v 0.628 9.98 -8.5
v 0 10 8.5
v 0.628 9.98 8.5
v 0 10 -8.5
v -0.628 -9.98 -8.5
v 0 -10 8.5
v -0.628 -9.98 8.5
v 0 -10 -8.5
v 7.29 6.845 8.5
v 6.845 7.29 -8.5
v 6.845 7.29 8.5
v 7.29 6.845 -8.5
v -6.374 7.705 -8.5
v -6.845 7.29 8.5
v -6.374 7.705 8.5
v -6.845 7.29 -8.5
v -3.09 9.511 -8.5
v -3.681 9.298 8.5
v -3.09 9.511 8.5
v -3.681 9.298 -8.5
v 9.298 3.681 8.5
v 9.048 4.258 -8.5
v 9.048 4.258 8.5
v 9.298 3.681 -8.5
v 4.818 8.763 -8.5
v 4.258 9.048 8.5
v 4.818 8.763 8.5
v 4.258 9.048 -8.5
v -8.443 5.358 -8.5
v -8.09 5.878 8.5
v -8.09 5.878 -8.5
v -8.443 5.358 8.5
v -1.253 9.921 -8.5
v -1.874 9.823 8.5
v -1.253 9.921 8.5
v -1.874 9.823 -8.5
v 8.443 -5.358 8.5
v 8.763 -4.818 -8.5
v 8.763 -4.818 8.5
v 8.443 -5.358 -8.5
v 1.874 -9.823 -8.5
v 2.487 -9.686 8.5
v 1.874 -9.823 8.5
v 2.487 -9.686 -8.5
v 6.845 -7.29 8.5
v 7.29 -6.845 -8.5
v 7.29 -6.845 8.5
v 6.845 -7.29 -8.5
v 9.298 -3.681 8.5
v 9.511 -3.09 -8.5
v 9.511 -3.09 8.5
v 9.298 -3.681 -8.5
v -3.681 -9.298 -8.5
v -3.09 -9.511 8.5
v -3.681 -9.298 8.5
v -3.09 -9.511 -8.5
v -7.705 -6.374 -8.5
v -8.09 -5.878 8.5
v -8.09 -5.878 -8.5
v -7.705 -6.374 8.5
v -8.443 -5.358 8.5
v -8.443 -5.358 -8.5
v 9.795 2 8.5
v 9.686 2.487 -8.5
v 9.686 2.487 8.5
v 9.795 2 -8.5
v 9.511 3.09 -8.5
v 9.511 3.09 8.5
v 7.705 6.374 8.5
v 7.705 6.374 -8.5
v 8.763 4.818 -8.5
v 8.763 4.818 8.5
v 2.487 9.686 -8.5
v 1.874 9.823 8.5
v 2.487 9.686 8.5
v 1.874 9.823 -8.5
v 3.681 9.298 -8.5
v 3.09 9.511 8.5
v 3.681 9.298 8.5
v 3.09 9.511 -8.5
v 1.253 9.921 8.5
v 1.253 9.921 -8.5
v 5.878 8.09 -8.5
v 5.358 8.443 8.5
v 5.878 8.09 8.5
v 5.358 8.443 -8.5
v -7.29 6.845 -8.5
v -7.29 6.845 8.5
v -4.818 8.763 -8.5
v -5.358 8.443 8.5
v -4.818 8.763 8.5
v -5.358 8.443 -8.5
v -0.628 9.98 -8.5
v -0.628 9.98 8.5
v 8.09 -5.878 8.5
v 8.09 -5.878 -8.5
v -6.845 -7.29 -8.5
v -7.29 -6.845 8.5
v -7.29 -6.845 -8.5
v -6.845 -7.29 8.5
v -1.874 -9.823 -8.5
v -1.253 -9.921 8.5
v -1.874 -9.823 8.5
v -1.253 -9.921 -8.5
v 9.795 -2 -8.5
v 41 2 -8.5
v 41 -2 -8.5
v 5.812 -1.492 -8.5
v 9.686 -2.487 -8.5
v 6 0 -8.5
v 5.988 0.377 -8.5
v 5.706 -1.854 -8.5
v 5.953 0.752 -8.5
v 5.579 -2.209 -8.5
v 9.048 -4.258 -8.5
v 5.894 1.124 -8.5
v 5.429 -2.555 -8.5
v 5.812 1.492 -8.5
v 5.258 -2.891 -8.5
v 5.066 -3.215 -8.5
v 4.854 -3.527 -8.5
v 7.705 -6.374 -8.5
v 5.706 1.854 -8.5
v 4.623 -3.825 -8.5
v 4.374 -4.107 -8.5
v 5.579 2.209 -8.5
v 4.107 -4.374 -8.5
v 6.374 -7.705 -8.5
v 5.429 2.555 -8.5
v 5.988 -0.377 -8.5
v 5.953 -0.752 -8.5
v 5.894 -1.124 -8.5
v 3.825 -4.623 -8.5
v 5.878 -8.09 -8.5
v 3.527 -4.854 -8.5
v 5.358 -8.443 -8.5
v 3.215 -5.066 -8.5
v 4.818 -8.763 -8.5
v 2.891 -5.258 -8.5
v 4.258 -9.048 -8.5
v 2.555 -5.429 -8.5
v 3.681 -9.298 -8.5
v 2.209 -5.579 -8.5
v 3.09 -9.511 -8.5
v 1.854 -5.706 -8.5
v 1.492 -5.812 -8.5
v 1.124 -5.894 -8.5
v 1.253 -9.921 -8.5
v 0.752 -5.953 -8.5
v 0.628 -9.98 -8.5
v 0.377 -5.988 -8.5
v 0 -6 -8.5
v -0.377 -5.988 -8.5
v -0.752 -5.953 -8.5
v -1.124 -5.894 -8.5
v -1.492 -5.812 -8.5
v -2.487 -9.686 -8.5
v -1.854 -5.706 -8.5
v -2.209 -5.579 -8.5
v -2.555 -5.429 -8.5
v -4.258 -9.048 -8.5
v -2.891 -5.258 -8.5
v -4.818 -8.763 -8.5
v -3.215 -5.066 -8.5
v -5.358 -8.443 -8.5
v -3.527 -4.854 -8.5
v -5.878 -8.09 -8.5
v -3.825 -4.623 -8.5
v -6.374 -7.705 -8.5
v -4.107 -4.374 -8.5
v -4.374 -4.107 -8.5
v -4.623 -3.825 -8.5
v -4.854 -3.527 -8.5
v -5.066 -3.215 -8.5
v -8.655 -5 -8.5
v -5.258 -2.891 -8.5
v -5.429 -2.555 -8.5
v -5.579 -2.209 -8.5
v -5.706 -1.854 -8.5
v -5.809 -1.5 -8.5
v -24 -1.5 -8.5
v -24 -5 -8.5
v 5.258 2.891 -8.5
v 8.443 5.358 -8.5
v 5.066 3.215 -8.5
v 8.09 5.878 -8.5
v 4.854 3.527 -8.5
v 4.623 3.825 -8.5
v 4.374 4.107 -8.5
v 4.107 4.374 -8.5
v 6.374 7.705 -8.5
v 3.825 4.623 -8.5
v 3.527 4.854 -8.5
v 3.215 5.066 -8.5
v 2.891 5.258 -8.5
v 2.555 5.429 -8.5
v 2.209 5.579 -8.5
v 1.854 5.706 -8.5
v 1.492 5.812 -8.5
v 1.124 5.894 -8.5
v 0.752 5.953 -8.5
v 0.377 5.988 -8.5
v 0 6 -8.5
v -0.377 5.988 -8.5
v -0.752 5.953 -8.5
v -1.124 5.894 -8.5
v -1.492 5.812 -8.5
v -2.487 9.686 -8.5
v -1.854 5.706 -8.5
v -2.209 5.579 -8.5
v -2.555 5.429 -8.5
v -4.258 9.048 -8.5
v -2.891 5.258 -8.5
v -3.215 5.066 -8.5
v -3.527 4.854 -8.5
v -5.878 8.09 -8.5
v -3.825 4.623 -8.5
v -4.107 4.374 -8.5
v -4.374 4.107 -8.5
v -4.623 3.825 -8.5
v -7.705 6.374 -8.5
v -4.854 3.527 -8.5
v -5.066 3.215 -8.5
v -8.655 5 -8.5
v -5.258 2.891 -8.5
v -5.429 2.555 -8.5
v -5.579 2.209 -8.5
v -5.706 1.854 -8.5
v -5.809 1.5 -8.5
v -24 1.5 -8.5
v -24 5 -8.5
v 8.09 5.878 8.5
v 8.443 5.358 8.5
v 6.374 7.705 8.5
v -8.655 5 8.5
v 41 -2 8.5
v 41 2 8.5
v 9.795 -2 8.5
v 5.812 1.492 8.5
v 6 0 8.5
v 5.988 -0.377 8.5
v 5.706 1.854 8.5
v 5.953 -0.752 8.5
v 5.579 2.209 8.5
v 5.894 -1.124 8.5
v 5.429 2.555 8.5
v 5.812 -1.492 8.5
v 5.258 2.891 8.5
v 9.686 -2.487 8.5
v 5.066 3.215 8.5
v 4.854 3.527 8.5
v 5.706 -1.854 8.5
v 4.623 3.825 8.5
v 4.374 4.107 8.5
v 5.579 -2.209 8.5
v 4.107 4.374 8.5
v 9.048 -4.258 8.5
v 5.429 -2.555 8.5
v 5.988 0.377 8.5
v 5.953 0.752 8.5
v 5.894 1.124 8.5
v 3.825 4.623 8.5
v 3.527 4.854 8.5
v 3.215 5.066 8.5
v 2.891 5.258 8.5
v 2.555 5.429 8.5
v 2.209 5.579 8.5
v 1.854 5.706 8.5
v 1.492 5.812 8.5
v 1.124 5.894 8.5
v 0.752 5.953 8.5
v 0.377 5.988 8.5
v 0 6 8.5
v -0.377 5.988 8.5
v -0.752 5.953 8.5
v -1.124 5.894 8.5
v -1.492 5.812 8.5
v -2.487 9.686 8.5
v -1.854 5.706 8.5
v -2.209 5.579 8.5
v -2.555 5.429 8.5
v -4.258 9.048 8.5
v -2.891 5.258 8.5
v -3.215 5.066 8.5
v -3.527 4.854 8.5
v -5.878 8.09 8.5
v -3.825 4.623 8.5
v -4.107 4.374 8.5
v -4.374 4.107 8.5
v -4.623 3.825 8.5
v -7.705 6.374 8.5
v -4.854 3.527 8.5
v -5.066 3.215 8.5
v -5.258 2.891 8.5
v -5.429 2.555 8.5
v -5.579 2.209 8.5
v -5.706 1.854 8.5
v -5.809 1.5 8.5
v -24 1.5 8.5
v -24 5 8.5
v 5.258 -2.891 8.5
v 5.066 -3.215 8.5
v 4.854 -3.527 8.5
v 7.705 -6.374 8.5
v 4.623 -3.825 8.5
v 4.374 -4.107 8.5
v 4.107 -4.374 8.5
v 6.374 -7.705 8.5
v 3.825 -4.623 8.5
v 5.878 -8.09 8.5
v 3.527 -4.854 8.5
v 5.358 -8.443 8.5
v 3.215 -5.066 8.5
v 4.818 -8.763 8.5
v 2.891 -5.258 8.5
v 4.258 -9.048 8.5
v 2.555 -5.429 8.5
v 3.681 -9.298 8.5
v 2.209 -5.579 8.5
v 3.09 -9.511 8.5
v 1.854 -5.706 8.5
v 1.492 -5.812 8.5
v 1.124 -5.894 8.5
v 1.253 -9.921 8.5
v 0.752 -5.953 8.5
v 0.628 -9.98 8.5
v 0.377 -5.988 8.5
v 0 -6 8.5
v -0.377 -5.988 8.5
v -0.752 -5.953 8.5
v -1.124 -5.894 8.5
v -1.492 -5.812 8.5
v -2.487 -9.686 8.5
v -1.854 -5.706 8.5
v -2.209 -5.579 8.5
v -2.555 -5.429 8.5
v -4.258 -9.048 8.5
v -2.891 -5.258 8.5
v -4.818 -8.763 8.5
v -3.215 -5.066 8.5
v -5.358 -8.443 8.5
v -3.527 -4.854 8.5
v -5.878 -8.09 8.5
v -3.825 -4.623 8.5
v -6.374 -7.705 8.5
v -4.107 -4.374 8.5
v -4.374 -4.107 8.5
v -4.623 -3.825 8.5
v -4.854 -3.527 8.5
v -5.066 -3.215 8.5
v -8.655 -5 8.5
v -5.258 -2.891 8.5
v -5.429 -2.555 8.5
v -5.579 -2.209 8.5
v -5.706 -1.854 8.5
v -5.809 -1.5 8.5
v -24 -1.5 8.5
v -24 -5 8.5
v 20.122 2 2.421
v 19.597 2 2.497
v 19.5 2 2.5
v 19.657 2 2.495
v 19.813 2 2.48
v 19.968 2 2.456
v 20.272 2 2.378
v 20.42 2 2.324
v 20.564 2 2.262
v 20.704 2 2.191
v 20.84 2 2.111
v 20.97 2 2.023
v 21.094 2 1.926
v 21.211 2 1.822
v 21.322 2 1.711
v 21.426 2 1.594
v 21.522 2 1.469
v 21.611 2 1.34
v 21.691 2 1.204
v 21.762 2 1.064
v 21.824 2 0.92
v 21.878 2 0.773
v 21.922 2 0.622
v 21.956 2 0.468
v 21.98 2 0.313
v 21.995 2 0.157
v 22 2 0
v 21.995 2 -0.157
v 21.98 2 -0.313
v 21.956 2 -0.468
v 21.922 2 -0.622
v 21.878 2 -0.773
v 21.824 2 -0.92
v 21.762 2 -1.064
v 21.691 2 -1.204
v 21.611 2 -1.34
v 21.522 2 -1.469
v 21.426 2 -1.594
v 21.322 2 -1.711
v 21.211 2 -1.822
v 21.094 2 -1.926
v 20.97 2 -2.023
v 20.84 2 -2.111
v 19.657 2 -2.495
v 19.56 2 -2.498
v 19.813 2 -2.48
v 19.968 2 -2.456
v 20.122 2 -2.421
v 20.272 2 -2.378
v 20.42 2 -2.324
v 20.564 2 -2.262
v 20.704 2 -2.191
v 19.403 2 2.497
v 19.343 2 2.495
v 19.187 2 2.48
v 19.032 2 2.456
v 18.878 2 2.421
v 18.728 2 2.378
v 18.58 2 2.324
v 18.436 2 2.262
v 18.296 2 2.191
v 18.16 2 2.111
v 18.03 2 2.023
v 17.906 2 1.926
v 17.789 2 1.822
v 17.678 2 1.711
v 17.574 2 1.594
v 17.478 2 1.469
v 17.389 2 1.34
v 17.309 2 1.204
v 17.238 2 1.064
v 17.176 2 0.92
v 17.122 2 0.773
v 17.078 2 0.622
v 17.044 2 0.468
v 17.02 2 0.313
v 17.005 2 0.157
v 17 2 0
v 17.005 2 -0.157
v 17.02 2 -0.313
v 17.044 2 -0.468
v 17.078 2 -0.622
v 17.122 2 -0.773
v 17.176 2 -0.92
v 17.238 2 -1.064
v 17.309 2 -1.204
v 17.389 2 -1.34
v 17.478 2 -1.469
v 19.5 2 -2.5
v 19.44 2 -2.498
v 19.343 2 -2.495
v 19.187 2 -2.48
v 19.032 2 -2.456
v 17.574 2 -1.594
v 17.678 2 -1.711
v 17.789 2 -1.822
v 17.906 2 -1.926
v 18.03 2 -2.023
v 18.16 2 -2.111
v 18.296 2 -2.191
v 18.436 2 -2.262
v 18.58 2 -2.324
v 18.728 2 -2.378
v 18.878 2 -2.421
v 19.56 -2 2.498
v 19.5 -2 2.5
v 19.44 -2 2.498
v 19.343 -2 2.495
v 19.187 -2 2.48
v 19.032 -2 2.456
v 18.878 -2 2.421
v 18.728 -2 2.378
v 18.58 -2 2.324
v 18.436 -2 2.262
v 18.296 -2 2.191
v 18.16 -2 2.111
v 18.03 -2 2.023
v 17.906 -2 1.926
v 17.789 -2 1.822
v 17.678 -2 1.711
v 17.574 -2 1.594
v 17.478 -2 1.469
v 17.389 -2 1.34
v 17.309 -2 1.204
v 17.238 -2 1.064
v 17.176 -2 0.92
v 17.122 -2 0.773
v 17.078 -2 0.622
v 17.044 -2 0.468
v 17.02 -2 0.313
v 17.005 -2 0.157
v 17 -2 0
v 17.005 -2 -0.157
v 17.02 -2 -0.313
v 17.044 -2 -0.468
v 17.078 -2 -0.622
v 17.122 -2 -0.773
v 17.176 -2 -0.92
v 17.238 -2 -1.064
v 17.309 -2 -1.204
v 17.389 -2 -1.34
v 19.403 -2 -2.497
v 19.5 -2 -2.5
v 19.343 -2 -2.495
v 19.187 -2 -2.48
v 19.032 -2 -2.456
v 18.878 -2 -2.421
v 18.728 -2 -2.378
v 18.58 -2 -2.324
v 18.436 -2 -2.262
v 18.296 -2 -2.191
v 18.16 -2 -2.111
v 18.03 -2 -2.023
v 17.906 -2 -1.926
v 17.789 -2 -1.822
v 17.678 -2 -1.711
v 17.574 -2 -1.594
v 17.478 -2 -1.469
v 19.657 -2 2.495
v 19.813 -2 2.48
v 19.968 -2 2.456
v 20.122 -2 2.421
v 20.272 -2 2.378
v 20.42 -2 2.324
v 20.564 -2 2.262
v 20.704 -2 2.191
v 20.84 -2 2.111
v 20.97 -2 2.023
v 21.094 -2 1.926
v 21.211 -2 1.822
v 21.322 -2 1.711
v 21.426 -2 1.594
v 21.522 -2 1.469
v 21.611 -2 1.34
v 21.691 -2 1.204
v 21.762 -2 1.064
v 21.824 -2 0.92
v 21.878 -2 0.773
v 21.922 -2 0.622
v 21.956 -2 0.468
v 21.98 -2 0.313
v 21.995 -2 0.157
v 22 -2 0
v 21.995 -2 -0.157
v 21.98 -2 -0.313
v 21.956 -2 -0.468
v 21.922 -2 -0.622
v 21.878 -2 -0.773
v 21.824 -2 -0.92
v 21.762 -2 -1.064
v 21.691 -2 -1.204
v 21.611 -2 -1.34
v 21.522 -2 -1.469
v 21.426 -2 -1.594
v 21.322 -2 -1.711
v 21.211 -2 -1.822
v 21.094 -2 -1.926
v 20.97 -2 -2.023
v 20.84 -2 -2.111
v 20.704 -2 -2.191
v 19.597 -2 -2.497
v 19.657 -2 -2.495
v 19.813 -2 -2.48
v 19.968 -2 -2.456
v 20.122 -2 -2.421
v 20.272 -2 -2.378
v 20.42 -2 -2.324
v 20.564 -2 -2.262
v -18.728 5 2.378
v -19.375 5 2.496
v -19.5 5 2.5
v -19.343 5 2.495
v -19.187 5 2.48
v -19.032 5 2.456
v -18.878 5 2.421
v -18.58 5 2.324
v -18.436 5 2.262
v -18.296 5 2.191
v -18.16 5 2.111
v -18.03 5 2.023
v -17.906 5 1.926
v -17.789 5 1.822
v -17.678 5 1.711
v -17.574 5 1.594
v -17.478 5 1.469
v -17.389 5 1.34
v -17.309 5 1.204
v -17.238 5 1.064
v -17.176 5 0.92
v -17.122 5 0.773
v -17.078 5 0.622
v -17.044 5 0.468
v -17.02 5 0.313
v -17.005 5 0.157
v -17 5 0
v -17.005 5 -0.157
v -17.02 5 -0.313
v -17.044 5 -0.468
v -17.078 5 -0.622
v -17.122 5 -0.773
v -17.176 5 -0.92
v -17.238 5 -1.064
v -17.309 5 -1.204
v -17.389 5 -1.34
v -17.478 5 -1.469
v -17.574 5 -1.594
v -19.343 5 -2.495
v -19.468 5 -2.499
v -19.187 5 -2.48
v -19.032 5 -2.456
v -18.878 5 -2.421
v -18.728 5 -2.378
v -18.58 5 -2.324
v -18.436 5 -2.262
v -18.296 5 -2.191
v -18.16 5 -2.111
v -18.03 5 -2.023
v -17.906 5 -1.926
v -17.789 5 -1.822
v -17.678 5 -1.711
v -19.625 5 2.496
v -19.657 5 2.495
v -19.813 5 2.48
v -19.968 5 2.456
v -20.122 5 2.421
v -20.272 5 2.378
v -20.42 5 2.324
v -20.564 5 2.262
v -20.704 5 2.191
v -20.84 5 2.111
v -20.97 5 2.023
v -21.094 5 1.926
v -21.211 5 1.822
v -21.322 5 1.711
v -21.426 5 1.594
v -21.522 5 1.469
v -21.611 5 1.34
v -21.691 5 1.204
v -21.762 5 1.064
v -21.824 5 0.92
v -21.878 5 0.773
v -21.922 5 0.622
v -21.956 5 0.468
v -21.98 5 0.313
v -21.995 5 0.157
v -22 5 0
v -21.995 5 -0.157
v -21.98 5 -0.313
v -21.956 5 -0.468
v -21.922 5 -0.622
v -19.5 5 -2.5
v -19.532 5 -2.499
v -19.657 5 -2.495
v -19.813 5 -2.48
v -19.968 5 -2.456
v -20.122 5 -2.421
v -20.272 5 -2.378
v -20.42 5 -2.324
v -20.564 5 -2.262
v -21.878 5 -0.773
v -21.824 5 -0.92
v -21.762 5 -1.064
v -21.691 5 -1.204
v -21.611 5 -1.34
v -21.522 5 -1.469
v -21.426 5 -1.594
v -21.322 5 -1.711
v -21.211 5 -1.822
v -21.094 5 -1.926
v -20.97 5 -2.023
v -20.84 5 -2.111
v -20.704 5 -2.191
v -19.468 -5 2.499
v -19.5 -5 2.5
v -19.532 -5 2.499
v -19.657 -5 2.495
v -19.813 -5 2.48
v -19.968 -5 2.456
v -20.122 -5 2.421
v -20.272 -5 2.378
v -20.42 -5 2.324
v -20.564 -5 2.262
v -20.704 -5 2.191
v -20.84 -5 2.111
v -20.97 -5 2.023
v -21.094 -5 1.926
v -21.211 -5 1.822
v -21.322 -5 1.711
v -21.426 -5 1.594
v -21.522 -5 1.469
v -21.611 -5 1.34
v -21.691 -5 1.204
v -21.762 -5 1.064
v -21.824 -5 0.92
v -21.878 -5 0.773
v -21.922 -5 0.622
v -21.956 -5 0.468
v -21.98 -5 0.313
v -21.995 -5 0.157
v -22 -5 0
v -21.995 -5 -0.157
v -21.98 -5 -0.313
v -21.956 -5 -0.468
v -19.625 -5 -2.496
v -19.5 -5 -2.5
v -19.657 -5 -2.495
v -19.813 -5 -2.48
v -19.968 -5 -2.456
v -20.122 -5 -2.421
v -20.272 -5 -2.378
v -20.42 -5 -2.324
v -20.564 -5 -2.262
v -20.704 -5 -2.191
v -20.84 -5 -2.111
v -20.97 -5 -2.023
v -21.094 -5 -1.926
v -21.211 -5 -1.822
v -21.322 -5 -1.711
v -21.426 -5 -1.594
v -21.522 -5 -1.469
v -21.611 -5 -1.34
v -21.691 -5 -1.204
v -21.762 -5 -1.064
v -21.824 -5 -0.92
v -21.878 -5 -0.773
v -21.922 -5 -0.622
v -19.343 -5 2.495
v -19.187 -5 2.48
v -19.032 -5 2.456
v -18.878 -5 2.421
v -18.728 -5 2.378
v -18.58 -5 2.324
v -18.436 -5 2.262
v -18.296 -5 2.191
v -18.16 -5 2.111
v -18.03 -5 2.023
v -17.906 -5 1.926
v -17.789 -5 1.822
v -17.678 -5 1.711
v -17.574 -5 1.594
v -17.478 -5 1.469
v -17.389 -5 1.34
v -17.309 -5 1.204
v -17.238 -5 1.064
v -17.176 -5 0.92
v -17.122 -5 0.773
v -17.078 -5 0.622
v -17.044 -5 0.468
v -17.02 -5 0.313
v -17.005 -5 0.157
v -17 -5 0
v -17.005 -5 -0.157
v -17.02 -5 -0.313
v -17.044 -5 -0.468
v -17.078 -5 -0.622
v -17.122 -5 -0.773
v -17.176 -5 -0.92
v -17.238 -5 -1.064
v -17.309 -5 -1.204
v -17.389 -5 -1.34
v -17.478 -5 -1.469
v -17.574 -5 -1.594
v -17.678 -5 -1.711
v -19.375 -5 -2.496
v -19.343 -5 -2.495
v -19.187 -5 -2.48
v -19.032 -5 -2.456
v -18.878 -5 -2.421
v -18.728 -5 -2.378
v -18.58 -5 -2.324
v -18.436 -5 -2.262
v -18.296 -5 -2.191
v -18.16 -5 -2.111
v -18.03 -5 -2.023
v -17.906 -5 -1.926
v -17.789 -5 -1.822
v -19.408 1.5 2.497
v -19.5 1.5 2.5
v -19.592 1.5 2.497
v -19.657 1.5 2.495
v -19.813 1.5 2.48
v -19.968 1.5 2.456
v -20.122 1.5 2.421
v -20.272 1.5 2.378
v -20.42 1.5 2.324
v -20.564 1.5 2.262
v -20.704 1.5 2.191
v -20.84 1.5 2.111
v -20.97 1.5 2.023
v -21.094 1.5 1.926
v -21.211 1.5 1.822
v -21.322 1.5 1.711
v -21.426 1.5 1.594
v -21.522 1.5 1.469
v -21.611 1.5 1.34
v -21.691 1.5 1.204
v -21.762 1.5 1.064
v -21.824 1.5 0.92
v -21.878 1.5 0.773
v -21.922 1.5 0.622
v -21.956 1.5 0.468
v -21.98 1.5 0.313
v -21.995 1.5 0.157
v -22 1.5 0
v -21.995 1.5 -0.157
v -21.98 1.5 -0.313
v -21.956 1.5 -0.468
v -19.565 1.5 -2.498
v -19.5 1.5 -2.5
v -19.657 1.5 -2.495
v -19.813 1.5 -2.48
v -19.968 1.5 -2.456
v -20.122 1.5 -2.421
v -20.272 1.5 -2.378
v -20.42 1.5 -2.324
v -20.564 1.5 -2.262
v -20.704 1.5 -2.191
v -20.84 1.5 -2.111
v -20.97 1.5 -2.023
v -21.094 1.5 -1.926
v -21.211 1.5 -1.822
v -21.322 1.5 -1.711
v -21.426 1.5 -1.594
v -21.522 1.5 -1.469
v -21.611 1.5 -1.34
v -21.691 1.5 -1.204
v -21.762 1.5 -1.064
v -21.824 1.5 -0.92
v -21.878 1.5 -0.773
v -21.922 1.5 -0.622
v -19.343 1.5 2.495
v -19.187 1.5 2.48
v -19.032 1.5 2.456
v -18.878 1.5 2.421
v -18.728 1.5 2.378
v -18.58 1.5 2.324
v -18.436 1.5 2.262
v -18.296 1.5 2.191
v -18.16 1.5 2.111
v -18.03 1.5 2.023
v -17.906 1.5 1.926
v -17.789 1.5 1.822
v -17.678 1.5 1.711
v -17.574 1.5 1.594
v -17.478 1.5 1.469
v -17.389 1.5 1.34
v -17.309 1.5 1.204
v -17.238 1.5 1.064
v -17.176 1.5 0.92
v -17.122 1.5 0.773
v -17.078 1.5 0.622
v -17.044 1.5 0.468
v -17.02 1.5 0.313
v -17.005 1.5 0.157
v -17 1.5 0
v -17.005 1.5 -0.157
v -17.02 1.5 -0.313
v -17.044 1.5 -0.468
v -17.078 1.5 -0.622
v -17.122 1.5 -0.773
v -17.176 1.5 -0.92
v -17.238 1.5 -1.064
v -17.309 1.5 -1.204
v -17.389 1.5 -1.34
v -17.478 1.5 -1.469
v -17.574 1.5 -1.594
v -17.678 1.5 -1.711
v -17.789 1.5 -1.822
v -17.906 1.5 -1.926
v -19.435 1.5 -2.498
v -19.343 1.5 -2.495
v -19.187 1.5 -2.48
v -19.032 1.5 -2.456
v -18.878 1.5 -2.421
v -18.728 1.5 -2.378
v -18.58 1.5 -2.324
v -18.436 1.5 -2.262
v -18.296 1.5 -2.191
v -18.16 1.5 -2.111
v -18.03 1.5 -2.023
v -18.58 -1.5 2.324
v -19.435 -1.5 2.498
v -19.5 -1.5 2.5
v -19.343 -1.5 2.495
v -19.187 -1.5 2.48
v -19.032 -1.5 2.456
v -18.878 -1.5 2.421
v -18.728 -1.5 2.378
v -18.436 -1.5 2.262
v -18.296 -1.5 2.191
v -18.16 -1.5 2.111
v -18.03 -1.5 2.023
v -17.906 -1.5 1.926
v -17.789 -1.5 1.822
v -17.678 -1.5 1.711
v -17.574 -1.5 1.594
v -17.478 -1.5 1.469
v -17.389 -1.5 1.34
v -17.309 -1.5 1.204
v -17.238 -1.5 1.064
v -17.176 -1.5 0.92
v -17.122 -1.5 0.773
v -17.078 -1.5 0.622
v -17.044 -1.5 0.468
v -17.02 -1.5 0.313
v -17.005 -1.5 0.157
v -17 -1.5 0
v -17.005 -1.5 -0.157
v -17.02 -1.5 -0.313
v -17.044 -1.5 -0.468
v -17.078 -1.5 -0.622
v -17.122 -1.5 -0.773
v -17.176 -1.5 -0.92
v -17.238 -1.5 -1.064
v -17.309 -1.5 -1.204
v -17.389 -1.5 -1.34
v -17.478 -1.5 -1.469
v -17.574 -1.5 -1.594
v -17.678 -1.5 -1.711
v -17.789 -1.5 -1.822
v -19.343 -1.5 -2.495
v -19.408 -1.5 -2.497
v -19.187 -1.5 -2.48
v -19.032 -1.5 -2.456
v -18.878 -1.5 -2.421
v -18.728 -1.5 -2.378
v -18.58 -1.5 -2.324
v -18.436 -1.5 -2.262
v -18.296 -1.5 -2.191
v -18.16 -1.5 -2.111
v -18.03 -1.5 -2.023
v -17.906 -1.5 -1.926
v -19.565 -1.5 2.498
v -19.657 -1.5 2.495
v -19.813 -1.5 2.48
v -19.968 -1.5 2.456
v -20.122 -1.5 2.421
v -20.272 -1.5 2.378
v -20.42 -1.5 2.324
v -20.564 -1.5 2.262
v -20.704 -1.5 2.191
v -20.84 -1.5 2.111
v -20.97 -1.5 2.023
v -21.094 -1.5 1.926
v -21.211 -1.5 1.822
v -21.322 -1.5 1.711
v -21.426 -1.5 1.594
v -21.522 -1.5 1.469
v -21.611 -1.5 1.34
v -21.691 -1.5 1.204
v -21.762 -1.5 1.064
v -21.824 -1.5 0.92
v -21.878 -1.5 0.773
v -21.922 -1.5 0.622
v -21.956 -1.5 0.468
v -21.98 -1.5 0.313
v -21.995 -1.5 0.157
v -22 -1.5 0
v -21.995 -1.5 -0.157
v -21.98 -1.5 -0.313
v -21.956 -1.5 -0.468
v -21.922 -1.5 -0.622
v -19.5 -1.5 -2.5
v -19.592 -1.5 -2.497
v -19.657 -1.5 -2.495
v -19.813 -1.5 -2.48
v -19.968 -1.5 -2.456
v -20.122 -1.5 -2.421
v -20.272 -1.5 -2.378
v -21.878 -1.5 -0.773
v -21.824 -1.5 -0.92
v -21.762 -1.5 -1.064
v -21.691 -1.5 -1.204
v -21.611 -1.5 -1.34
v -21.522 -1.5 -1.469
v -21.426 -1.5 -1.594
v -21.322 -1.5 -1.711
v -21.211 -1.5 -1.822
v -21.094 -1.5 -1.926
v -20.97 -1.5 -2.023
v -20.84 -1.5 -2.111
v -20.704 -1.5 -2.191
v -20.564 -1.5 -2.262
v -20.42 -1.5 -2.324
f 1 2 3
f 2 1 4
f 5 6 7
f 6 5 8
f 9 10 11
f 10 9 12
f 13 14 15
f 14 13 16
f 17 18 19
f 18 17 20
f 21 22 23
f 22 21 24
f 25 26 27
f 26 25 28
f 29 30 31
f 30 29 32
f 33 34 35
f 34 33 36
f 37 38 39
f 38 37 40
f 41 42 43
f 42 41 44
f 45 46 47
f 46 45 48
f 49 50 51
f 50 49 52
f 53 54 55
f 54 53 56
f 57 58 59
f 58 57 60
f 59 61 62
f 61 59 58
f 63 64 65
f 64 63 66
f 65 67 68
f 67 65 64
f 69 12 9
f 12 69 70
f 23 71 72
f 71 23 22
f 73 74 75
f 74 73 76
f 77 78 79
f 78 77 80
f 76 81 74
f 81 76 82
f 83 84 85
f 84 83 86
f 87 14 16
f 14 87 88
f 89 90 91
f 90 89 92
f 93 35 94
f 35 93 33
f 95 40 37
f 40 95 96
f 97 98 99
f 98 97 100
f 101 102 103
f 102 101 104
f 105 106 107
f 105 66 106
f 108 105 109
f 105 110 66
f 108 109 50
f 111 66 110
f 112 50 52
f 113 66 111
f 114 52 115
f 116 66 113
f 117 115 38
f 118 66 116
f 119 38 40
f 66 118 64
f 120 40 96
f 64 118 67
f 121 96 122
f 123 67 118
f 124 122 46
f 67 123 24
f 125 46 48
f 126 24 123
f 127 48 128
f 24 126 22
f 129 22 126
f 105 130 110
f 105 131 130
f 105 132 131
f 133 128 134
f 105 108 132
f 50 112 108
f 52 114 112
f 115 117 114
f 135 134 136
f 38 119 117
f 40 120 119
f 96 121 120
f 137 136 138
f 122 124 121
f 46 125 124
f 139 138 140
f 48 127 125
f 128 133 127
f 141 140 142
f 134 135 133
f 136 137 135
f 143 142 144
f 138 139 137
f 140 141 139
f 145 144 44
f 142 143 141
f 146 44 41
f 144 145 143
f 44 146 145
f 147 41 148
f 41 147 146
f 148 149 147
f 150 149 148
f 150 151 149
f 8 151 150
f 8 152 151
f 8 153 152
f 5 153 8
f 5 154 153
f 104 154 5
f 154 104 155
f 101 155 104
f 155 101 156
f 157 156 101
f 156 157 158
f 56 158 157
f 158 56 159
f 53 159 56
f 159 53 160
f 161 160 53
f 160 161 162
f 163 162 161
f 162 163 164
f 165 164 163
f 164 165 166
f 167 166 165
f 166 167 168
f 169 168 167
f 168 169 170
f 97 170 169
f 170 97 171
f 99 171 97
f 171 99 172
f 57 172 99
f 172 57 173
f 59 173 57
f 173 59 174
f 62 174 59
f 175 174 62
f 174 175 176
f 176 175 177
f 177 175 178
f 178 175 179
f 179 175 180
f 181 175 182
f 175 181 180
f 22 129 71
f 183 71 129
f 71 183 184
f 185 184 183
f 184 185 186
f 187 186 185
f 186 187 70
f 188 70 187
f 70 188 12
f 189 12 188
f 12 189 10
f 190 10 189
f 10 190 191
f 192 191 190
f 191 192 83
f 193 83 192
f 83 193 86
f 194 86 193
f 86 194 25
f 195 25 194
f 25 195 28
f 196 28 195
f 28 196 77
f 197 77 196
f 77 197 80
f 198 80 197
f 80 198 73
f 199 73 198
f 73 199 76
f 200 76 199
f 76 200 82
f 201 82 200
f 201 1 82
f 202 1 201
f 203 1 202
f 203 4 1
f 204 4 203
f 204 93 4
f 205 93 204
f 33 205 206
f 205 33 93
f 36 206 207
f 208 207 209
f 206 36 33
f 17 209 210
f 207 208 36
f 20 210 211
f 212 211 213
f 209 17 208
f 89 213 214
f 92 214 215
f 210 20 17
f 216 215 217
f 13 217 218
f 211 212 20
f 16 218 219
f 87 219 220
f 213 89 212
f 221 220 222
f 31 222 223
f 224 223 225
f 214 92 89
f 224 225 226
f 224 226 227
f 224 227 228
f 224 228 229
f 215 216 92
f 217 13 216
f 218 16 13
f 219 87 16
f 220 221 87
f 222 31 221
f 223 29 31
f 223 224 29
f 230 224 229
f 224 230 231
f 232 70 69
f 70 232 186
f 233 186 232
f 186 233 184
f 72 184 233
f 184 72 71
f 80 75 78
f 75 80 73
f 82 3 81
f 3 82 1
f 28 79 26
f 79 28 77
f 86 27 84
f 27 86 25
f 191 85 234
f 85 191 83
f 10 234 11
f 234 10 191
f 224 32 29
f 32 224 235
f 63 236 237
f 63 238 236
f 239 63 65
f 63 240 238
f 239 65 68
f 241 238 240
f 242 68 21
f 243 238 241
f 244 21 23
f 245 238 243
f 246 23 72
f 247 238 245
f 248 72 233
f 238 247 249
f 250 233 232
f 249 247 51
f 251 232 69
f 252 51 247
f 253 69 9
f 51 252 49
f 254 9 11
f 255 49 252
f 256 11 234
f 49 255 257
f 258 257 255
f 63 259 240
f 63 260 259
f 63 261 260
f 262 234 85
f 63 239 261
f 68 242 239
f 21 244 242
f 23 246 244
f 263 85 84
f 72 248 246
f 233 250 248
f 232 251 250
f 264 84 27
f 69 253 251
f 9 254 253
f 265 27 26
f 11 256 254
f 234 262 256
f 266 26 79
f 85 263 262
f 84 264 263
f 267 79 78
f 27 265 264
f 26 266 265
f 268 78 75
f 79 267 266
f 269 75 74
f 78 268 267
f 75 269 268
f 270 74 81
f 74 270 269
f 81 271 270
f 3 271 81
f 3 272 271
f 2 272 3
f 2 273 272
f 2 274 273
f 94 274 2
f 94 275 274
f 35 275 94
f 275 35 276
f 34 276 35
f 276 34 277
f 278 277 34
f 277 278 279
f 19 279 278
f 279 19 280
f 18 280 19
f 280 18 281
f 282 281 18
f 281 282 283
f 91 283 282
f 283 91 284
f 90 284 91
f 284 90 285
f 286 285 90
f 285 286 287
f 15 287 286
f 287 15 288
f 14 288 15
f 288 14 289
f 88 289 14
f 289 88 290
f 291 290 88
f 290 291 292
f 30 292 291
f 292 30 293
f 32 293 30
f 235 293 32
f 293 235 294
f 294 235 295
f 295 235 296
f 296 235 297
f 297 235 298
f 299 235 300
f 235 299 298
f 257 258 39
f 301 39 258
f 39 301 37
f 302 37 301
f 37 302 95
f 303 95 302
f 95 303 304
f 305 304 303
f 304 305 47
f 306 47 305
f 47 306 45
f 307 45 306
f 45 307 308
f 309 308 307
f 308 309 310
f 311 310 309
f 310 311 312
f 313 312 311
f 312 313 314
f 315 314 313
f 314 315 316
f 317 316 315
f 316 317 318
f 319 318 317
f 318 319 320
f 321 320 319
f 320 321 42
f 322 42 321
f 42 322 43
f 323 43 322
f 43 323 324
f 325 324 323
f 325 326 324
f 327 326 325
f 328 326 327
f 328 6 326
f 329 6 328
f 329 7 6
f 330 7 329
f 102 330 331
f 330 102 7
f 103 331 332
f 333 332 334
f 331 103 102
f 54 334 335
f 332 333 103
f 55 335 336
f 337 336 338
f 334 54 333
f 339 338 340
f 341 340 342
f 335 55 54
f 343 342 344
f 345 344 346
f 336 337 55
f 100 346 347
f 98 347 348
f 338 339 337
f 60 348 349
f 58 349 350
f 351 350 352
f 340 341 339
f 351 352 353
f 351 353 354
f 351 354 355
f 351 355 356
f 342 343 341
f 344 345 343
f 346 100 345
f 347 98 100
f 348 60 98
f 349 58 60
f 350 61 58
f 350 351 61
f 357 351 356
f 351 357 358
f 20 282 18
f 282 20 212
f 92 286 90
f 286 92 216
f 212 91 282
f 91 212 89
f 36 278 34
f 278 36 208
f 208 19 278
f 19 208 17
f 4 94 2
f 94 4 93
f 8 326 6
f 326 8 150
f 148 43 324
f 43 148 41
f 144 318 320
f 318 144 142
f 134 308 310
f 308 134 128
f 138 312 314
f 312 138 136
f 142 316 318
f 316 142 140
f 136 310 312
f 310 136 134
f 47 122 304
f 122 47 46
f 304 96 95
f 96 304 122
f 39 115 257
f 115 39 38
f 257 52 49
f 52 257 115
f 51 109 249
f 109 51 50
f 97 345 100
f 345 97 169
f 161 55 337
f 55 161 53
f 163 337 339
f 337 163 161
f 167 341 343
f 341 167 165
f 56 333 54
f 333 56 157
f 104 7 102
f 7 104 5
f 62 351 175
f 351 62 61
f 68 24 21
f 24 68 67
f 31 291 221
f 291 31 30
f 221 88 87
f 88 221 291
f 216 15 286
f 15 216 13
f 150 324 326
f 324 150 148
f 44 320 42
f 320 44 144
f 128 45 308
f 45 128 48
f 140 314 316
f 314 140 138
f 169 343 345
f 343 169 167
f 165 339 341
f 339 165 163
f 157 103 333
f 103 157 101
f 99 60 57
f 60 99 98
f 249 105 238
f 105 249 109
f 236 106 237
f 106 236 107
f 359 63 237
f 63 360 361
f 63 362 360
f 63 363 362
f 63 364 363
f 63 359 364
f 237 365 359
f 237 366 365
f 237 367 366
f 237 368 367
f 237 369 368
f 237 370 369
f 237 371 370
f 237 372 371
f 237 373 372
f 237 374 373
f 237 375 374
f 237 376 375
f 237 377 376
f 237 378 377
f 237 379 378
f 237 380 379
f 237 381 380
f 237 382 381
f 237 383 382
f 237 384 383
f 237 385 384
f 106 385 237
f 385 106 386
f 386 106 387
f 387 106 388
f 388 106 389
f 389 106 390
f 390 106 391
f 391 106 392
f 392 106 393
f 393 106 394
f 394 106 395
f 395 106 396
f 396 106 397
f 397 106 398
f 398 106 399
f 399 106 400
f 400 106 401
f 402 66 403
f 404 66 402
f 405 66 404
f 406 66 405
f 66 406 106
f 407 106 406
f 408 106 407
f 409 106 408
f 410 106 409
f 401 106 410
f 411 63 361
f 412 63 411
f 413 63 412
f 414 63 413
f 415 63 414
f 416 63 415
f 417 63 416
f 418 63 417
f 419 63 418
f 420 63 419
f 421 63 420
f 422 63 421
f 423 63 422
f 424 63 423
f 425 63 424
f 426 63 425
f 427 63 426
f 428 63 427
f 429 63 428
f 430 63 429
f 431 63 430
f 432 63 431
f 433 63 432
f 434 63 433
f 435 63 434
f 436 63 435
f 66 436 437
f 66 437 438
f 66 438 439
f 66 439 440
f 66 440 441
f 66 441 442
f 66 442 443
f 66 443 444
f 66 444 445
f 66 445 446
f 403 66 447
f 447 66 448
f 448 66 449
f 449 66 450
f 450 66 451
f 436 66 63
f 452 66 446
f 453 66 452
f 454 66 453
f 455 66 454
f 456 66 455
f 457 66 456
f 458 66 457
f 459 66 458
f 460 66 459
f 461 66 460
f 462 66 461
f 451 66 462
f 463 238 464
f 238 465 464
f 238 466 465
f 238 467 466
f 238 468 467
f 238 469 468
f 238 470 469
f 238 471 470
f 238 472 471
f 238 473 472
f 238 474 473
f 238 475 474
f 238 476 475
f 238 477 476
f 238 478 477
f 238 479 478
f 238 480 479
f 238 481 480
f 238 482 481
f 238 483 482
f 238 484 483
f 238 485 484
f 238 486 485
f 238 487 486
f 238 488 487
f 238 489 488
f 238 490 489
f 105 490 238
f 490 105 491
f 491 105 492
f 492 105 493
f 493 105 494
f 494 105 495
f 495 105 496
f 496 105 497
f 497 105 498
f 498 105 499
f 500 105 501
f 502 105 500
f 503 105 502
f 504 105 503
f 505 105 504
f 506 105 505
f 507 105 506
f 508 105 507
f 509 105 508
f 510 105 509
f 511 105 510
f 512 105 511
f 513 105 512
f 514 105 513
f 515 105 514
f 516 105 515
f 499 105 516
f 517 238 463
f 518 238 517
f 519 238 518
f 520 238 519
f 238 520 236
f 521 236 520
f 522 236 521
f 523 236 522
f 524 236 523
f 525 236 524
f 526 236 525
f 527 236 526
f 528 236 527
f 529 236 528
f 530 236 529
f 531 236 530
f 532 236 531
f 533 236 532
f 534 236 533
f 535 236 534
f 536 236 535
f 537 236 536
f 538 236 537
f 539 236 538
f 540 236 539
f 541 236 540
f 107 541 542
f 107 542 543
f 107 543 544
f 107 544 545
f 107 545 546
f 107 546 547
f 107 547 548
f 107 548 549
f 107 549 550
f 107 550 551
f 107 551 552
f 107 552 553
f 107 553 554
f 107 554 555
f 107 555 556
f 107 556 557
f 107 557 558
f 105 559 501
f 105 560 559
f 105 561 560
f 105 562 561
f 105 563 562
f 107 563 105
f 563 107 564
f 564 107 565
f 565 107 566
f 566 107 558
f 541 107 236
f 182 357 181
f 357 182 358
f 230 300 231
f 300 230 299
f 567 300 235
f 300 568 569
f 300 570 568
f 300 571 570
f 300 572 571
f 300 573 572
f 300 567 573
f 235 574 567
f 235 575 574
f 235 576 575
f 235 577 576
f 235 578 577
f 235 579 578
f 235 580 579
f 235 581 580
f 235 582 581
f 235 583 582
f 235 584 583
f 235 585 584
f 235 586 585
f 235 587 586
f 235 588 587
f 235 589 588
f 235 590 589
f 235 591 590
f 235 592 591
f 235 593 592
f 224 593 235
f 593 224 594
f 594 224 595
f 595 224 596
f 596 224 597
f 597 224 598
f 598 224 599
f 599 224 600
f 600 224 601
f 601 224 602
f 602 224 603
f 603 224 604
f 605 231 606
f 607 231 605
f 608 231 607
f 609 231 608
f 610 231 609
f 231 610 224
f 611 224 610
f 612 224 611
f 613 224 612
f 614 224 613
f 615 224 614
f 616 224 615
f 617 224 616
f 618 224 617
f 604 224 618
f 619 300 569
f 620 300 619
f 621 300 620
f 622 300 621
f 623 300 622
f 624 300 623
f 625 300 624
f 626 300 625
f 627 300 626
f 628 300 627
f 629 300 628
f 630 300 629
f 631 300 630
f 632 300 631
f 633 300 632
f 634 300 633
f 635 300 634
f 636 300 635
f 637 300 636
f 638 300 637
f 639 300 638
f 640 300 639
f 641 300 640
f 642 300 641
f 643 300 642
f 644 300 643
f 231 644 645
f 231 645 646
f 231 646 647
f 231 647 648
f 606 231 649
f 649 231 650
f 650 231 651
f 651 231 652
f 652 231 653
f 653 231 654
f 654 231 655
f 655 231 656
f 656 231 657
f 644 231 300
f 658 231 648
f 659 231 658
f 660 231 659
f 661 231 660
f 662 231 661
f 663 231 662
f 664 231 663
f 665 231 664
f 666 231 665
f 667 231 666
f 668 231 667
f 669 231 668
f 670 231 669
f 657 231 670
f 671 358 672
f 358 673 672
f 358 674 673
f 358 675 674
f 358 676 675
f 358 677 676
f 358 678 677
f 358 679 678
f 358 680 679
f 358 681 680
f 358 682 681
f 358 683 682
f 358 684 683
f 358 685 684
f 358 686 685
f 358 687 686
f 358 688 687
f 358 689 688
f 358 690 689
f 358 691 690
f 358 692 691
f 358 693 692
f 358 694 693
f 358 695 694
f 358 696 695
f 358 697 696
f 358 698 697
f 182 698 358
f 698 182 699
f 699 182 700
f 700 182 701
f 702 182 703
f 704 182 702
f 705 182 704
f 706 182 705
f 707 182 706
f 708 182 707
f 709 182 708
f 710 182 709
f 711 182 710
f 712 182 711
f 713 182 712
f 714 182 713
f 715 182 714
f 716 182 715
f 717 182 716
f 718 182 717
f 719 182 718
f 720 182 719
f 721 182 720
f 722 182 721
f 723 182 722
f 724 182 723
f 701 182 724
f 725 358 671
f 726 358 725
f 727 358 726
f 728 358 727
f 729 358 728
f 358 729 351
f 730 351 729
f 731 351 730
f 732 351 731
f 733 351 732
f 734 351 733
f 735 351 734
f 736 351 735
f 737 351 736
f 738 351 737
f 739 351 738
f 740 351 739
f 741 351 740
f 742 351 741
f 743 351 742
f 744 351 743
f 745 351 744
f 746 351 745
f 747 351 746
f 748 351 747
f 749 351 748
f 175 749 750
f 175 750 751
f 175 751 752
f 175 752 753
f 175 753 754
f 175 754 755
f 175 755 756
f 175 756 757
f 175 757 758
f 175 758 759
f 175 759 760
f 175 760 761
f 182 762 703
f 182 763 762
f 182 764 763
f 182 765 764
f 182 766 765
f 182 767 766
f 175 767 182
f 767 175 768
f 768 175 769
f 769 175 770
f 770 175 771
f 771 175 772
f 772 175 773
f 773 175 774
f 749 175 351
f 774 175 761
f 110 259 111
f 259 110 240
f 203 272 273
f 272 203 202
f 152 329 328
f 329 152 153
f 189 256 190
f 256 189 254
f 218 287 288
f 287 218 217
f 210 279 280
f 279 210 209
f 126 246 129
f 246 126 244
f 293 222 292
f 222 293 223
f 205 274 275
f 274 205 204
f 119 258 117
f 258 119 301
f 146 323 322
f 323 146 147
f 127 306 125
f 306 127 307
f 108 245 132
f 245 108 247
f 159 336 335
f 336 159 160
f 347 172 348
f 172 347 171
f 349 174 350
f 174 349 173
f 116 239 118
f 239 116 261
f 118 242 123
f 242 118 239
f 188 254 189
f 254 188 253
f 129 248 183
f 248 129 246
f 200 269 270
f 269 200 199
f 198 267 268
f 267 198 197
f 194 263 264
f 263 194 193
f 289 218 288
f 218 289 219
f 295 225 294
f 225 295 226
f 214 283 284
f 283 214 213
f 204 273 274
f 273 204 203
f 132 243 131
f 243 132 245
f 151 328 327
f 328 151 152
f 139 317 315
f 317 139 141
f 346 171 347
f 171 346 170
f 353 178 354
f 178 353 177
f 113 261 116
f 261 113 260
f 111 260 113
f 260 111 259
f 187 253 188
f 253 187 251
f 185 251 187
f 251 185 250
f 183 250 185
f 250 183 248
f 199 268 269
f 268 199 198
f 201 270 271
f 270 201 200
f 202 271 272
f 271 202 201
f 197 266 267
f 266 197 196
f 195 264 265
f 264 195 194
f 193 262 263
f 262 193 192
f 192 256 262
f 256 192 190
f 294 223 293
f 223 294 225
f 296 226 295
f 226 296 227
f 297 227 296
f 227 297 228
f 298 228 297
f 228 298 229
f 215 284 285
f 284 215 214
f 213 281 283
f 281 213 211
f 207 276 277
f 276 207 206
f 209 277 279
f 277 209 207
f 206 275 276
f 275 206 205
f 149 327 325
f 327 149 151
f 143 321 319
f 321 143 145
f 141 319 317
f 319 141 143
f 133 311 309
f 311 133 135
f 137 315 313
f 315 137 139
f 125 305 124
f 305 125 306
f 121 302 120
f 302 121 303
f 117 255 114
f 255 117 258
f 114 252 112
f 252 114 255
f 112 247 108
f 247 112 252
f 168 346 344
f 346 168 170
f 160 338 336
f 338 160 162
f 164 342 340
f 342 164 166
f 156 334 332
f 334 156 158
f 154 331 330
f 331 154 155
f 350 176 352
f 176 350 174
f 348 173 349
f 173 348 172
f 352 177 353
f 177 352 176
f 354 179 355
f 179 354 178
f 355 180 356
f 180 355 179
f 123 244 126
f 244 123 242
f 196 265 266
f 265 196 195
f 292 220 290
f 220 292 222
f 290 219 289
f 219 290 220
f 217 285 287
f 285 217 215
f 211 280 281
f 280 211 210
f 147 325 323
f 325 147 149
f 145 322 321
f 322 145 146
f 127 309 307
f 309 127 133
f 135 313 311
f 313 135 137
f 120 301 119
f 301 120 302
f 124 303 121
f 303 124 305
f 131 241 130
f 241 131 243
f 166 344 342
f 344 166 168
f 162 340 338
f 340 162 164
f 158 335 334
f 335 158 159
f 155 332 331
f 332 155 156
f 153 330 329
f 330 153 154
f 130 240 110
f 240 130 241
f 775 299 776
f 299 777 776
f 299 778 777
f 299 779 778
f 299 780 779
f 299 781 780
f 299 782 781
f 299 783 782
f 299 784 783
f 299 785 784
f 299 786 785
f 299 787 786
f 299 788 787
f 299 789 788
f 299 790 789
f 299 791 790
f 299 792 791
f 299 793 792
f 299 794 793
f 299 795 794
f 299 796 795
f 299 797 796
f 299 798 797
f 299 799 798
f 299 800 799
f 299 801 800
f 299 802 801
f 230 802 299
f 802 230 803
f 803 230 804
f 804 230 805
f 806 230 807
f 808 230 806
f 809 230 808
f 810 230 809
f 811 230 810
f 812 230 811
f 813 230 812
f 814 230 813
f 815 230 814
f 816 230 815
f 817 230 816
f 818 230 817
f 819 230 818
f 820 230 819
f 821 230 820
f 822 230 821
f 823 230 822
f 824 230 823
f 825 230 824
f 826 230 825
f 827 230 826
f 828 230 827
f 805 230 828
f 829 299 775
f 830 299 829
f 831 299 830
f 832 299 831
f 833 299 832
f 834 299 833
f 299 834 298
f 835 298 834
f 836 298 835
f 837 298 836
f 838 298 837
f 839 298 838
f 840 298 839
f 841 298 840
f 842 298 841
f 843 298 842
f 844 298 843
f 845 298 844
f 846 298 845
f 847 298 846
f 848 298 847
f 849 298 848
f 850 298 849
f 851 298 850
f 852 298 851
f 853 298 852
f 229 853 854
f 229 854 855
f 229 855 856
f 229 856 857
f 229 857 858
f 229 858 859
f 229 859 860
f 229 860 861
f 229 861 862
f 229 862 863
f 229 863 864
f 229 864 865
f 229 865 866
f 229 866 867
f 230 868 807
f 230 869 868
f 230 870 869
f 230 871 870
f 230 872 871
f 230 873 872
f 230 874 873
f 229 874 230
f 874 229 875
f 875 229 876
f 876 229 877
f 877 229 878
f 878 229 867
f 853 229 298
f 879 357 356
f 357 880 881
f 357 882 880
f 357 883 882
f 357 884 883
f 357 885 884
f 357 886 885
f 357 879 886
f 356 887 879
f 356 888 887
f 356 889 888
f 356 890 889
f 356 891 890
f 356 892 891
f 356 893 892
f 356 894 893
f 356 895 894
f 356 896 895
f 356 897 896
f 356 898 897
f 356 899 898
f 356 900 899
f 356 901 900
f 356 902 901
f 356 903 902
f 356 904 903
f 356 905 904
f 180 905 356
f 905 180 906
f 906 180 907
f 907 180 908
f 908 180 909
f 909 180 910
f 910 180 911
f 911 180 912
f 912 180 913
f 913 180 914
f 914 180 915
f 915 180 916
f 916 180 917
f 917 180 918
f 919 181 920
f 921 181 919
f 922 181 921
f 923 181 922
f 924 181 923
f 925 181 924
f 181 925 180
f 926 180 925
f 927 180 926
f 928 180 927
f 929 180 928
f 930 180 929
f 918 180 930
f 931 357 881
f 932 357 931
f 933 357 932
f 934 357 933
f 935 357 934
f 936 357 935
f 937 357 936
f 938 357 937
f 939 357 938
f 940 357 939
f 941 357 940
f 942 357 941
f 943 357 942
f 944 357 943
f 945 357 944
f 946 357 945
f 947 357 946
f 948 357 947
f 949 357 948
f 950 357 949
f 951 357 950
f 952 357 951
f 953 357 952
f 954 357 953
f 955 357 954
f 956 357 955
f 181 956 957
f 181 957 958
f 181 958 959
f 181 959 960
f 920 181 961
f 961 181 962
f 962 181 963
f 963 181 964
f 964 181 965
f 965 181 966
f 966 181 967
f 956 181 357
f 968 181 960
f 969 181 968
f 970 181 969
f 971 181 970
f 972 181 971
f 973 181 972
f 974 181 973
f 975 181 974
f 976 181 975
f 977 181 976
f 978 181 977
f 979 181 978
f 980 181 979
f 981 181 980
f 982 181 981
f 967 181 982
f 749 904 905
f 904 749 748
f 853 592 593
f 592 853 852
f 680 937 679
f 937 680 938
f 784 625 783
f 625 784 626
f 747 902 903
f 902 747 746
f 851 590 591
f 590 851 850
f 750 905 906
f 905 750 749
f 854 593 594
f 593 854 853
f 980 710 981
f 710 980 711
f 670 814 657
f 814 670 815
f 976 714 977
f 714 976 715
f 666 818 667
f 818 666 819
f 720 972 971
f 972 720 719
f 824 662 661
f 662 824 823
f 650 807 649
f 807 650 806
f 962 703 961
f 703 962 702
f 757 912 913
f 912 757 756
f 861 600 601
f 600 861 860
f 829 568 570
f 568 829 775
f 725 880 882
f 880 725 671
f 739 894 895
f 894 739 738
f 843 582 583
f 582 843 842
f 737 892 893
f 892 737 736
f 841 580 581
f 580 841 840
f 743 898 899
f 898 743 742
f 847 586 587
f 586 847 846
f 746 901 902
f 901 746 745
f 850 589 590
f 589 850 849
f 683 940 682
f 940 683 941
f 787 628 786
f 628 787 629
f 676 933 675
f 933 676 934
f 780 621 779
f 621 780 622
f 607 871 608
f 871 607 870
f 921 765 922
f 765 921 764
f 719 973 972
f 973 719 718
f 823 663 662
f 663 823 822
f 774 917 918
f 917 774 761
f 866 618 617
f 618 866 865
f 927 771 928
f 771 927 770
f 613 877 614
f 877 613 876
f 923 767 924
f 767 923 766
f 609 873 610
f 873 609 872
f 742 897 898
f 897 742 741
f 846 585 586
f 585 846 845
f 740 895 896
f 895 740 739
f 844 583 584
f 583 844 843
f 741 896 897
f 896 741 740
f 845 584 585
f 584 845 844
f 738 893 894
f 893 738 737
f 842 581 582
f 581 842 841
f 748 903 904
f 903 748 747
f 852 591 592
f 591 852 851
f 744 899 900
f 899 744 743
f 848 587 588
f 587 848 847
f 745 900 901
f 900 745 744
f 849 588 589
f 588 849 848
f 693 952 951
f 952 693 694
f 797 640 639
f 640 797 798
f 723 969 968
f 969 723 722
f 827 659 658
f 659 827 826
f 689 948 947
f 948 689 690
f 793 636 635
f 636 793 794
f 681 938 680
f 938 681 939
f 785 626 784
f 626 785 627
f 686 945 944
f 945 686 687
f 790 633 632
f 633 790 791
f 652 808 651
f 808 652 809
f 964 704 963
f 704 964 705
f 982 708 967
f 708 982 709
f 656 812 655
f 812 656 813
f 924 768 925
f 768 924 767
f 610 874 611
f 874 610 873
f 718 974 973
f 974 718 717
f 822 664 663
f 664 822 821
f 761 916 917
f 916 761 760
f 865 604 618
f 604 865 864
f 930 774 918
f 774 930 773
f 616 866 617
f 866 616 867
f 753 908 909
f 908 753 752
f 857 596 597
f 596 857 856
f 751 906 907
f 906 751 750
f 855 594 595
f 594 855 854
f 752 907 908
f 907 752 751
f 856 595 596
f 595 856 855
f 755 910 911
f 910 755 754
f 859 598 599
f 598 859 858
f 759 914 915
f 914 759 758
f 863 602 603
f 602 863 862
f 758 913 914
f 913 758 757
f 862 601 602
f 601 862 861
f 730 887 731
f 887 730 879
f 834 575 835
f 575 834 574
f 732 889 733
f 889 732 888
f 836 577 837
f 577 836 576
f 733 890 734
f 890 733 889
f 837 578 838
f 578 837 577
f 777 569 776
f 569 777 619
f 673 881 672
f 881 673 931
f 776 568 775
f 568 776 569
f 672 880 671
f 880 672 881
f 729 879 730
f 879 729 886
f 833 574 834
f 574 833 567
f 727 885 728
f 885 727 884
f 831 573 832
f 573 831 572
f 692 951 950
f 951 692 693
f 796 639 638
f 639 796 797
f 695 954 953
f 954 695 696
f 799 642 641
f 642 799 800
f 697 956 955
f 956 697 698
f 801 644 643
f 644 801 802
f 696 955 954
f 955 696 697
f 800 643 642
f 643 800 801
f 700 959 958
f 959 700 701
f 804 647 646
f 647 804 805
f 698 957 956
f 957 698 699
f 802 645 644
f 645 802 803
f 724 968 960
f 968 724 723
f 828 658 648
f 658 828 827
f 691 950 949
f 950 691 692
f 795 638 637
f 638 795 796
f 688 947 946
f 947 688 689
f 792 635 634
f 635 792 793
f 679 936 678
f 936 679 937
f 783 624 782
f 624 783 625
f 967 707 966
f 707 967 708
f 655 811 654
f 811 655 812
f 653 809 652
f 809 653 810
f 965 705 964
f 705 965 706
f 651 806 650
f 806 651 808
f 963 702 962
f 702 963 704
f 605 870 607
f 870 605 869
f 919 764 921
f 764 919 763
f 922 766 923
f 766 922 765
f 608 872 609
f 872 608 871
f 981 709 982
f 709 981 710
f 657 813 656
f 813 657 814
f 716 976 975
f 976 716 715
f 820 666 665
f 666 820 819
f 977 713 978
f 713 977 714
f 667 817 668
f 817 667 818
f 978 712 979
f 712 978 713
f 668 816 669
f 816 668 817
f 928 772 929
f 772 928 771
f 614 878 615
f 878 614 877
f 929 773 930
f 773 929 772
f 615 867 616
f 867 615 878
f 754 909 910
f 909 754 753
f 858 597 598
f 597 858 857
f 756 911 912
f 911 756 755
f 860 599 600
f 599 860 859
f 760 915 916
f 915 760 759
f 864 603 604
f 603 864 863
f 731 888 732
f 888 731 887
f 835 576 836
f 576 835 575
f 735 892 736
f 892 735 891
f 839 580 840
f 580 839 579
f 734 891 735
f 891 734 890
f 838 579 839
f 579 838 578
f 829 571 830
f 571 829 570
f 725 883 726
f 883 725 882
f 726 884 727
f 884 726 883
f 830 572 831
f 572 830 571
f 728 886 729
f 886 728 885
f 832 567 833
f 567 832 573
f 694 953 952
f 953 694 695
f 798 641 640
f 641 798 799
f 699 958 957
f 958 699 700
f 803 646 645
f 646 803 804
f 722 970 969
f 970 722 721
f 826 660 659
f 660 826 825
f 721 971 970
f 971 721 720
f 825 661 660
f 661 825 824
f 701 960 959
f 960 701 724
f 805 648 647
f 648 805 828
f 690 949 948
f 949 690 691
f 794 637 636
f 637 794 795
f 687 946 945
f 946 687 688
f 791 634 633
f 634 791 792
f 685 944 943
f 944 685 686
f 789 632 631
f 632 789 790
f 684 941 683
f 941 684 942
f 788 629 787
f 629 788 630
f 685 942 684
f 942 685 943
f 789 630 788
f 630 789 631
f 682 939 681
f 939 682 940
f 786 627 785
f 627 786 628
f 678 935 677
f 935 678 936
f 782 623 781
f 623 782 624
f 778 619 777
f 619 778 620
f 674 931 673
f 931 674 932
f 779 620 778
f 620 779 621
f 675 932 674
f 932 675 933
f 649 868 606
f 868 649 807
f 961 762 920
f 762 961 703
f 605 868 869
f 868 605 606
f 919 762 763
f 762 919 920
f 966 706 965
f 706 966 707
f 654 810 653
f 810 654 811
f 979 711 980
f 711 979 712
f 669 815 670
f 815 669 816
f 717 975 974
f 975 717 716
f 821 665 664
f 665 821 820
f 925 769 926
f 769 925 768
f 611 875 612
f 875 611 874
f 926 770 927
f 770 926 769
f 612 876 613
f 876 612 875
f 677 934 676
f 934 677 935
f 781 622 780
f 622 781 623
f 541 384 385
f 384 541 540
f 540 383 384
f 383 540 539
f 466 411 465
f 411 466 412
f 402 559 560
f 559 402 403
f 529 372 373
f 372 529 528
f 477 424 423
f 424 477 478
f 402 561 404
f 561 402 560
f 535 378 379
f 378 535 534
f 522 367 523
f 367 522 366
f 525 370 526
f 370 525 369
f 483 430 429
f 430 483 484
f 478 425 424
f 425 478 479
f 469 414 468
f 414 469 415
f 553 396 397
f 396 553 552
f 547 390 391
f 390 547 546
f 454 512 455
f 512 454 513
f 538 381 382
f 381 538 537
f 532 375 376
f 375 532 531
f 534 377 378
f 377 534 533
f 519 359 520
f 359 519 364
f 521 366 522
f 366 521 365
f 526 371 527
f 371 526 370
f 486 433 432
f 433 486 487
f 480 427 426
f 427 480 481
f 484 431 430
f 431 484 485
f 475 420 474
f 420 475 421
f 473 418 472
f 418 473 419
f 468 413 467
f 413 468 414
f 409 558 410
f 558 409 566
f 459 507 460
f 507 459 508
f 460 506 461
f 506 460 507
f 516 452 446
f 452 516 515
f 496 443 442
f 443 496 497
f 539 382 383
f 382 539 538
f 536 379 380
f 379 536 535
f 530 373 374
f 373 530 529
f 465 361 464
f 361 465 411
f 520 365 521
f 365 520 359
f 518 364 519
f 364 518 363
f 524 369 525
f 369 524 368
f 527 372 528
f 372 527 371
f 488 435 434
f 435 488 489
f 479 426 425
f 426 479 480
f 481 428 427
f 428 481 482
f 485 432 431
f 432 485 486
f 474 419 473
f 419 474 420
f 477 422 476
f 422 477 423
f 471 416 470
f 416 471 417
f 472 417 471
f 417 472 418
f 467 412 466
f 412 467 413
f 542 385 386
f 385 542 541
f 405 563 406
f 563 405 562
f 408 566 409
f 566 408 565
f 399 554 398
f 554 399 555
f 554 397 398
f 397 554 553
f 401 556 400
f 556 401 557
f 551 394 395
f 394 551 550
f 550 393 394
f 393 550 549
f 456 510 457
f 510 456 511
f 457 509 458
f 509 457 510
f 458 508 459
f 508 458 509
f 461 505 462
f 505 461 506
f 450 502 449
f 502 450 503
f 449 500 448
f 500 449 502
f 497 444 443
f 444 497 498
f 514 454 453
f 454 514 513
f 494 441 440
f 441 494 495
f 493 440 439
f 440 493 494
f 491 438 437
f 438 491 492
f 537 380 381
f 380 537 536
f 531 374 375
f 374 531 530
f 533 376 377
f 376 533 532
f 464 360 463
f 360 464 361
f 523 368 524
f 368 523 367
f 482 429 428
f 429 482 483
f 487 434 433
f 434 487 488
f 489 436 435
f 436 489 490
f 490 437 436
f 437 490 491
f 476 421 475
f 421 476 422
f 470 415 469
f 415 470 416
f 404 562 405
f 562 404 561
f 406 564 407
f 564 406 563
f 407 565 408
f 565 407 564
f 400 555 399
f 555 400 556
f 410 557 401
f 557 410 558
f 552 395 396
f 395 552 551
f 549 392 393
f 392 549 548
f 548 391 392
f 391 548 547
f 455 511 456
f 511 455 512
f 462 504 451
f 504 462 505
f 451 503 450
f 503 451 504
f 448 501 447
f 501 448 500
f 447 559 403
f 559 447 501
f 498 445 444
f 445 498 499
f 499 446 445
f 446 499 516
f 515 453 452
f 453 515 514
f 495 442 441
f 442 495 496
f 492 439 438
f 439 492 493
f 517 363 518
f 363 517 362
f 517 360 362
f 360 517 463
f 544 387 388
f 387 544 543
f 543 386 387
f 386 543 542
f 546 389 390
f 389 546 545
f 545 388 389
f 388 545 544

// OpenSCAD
d=0.02;
r_tube=6;

h_tube=17;

w_holder=35;
wall_space=3;

wall=4;
w_screw=r_tube*2+wall;
r_screw=2.5;

difference(){
    union(){
        cylinder(r=r_tube+wall, h=h_tube, $fn=100, center=true);
        translate([r_tube+w_holder/2,0,0]) cube([w_holder,wall,h_tube], center=true);
        translate([-w_screw,wall/2,0]) cube([w_screw,r_tube,h_tube], center=true);
        translate([-w_screw,-wall/2,0]) cube([w_screw,r_tube,h_tube], center=true);
    }
    
    translate([0,0,0]) cylinder(r=r_tube, h=h_tube+2, $fn=100, center=true);
    translate([-w_holder/2,0,0]) cube([w_holder, wall_space,h_tube+2], center=true);
    
   translate([-r_tube-w_holder/2+wall,0,0]) rotate([90,0,0]) cylinder(r=r_screw, h=h_tube, center=true, $fn=100);
    translate([r_tube+w_holder/2-wall,0,0]) rotate([90,0,0]) cylinder(r=r_screw, h=h_tube, center=true, $fn=100);
}
